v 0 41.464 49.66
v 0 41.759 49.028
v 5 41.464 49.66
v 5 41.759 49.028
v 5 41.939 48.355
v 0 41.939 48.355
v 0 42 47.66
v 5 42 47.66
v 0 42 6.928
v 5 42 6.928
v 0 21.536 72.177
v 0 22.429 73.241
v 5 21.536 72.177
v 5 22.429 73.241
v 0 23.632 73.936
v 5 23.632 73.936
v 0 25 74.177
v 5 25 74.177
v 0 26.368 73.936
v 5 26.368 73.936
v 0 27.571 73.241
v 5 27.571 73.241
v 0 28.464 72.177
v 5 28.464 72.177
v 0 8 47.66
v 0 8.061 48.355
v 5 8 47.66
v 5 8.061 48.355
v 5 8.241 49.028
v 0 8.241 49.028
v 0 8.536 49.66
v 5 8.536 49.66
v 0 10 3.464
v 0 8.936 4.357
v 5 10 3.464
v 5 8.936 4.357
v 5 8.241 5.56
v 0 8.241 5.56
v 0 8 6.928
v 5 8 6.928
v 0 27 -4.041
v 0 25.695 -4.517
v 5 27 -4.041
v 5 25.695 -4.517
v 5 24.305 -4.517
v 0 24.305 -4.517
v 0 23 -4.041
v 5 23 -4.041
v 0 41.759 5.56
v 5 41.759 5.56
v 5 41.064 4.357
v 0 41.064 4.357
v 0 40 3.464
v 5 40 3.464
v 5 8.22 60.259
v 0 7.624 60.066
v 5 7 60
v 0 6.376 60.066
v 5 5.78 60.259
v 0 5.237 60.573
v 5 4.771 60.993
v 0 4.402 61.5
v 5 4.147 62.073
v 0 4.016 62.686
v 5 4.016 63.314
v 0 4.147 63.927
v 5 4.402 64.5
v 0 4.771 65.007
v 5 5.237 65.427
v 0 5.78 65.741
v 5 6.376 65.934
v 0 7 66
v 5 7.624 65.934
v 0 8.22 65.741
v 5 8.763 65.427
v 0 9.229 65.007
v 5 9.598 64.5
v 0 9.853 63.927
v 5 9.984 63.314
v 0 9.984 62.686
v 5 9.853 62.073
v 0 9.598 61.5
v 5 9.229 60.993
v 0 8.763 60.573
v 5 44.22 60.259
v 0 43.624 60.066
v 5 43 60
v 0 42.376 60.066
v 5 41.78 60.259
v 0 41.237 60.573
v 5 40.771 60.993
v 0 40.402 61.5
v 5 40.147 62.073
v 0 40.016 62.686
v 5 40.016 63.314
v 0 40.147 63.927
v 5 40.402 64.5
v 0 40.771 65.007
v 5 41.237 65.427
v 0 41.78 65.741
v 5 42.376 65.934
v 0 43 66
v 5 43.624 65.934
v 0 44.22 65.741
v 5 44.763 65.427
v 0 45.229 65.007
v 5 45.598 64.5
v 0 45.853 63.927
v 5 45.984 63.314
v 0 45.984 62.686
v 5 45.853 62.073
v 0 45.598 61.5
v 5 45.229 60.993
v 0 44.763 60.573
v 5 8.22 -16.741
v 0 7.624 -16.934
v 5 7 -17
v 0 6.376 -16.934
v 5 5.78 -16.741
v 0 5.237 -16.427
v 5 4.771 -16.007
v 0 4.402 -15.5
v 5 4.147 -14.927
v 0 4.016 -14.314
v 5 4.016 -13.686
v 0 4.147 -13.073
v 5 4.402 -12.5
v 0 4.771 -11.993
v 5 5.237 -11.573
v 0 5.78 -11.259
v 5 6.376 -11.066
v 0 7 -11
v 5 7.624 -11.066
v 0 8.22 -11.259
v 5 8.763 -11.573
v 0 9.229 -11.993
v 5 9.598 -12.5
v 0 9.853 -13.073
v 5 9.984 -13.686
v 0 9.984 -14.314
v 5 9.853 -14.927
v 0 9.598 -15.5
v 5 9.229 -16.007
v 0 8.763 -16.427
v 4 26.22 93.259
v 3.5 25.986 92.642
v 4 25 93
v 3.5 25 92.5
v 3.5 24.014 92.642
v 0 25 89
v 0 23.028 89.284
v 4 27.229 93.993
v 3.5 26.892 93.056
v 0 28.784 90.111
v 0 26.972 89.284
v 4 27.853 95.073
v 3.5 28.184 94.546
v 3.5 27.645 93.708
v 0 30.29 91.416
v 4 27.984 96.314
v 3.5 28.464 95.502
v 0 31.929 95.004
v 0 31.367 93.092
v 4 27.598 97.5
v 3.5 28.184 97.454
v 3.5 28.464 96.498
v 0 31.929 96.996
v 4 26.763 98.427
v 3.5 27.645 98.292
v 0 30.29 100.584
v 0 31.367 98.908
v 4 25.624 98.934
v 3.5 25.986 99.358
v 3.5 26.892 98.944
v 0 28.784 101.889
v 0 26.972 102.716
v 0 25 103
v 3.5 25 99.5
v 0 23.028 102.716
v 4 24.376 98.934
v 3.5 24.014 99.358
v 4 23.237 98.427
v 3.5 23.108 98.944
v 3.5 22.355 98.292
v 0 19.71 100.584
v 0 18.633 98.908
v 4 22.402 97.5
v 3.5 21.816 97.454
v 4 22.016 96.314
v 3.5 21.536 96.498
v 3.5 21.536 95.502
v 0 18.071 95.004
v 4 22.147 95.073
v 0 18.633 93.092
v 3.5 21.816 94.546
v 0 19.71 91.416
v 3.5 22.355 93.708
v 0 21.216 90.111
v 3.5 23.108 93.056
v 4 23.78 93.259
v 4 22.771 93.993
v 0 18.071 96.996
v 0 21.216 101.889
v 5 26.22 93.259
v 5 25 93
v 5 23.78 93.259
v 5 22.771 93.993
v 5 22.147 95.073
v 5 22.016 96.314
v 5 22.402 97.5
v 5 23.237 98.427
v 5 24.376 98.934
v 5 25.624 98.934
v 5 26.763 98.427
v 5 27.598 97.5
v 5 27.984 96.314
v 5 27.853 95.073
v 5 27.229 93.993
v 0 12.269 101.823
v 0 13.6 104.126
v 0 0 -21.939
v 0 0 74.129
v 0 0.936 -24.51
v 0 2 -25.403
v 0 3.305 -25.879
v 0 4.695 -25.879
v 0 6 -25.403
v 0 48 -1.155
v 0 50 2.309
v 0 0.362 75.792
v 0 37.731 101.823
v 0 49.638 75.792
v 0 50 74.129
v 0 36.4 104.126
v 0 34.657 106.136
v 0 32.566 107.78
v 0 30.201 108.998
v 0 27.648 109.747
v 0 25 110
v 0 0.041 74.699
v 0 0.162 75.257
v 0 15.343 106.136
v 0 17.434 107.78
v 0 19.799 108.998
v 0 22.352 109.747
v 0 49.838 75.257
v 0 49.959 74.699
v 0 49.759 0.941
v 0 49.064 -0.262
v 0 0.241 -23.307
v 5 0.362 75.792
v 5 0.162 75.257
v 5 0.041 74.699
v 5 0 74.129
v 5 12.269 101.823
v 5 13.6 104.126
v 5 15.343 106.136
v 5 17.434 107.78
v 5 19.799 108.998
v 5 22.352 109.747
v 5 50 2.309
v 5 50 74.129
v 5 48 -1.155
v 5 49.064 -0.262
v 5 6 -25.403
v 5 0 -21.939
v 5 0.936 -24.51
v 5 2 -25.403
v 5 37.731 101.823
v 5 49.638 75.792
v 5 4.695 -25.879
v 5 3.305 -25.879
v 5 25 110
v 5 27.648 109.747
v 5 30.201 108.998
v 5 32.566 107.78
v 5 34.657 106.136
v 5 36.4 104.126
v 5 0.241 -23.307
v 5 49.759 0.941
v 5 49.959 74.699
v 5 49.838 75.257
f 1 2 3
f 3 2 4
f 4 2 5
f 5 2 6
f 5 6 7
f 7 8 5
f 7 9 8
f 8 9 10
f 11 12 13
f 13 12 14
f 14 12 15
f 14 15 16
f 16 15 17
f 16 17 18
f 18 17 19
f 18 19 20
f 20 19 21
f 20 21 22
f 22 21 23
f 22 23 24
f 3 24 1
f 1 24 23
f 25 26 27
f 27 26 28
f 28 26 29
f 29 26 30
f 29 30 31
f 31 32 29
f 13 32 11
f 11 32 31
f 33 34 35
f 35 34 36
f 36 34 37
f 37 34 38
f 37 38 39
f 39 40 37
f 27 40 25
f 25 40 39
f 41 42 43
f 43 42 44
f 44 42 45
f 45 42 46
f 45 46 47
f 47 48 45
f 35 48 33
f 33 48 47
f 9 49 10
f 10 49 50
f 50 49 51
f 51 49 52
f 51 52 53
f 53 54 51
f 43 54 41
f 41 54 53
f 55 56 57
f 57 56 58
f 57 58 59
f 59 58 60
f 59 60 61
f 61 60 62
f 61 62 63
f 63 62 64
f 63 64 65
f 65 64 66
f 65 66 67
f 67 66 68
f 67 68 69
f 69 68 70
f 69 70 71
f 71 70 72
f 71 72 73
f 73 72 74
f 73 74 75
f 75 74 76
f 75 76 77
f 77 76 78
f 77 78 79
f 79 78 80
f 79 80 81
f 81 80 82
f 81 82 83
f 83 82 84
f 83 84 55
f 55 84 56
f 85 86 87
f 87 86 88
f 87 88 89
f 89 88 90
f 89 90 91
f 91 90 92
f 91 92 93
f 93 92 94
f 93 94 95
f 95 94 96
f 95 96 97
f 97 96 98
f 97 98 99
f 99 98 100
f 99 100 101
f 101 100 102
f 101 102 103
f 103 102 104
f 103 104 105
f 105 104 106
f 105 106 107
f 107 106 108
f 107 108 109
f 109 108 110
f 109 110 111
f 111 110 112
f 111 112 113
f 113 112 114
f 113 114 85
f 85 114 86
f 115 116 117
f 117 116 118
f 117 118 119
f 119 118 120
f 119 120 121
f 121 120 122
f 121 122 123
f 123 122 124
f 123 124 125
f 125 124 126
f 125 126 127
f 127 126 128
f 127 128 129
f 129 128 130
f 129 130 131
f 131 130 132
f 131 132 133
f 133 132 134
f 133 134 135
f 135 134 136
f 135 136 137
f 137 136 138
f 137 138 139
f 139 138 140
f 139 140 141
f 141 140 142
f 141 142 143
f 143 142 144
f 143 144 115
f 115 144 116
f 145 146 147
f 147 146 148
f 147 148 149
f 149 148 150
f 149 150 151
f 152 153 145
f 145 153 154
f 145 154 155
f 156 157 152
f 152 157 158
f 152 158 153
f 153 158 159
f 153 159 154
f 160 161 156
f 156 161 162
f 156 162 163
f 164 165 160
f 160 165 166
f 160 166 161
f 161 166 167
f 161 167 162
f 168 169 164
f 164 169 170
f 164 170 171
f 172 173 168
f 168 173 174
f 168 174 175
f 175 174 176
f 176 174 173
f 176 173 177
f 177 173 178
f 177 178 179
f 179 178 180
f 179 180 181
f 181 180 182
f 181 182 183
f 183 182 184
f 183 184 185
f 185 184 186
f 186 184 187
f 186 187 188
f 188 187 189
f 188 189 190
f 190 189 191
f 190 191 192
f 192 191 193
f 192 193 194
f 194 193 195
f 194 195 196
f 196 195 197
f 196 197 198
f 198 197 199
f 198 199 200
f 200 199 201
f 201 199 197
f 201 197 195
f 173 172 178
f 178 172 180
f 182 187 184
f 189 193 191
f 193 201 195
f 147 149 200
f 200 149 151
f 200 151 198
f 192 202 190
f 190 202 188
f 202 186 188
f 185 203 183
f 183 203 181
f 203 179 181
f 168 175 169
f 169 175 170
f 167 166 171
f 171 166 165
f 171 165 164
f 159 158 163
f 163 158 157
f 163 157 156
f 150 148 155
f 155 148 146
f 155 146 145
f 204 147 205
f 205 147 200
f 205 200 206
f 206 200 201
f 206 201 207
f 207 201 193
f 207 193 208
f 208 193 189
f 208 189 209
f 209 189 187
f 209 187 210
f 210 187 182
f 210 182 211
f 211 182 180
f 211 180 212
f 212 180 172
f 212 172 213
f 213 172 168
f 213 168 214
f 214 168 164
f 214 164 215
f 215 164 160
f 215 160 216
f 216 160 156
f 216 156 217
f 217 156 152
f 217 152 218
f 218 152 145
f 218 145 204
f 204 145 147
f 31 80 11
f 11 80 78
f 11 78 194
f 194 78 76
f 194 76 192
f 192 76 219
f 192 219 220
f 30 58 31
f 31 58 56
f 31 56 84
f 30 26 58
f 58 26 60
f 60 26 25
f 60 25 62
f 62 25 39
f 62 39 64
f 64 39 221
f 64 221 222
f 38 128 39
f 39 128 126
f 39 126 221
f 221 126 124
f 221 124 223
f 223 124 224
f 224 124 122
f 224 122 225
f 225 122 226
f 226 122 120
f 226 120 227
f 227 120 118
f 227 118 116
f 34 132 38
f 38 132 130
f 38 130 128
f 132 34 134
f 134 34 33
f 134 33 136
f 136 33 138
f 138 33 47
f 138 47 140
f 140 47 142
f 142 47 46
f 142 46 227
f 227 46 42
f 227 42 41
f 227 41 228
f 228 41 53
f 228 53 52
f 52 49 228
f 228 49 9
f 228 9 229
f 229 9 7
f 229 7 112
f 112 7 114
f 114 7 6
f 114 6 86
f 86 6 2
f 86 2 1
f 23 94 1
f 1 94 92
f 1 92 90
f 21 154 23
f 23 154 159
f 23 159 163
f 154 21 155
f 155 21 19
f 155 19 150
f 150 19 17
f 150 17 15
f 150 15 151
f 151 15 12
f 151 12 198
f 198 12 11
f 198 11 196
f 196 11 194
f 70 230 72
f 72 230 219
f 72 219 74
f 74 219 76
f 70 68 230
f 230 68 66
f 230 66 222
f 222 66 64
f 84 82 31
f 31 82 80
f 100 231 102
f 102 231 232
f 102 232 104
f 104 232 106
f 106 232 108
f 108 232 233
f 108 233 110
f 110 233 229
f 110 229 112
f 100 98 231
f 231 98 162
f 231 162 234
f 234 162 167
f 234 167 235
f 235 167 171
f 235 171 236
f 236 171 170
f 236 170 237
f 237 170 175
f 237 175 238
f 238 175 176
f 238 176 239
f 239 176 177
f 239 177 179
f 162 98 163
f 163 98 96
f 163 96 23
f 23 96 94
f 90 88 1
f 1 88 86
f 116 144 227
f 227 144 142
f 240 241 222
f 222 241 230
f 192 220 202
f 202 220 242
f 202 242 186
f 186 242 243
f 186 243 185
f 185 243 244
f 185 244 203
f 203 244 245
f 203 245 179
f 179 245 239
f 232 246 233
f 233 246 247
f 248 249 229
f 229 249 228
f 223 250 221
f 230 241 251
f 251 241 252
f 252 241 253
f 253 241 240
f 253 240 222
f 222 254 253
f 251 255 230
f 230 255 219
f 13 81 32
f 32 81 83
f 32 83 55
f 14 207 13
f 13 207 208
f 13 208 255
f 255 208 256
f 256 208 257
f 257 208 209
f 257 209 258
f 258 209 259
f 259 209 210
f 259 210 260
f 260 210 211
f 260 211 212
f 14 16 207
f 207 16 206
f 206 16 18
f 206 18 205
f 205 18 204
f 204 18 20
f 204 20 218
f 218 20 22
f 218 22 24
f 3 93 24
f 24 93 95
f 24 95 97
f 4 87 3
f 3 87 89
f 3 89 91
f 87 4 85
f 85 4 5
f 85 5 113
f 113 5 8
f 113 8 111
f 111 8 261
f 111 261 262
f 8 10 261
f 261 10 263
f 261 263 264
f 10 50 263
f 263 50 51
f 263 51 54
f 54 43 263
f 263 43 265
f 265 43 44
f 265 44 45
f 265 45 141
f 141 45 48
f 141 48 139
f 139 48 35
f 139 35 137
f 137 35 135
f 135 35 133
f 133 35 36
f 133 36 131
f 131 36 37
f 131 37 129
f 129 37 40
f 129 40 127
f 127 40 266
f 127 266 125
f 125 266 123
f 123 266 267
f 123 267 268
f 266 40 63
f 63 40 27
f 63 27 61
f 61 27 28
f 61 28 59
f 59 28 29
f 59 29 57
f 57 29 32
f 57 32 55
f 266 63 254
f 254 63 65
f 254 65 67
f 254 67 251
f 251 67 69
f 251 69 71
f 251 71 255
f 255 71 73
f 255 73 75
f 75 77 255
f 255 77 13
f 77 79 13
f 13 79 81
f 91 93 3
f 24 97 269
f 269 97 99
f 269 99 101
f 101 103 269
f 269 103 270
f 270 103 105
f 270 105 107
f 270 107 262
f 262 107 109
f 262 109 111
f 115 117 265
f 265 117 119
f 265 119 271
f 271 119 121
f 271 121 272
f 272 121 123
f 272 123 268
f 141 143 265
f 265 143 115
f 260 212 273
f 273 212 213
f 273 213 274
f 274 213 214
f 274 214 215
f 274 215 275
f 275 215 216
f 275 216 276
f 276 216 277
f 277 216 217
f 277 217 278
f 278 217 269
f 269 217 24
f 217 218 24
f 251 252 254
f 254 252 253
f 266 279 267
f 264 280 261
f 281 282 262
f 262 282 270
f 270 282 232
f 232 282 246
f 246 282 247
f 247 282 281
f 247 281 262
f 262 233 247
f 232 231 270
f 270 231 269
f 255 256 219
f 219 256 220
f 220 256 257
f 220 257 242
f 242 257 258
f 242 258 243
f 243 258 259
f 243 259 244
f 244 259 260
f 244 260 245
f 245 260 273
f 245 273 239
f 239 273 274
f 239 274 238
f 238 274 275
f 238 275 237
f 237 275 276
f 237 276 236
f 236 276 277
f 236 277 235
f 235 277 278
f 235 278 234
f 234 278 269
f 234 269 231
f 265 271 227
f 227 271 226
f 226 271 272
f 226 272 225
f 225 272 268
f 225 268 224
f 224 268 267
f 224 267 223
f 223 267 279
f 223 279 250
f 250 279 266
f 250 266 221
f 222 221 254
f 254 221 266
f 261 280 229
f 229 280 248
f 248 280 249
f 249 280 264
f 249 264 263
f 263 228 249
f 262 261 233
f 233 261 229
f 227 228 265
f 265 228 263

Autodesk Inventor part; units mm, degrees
ref_plane "YZ Plane" through (0, 0, 0) normal (1, 0, 0) x (0, 1, 0)
ref_plane "XZ Plane" through (0, 0, 0) normal (0, 1, 0) x (-1, 0, 0)
ref_plane "XY Plane" through (0, 0, 0) normal (0, 0, 1) x (1, 0, 0)
sketch "Sketch1" plane through (0, 0, 0) normal (1, 0, 0) x (0, 1, 0)
  line L0 (0, 0) -> (50, 0)
  line L1 (50, 0) -> (50, 110)
  line L2 (50, 110) -> (0, 110)
  line L3 (0, 110) -> (0, 0)
  line L4 (50, 0) -> (0, -28.8675)
  line L5 (0, -28.8675) -> (0, 0)
  dimension "d0" = 110
  dimension "d1" = 50
  dimension "d68" = 60
extrude "Extrusion1" add sketch "Sketch1" along normal blind 5
fillet "Fillet1" radius 4 2 edges at (2.5, 50, 0) (2.5, 0, -28.8675)
sketch "Sketch2" plane through (5, 0, 0) normal (1, 0, 0) x (0, 0, -1)
  line L0 (-2.3094, 50) -> (-110, 50) projected
  line L1 (-110, 50) -> (-110, 0) projected
  line L2 (-110, 33.9915) -> (-75, 50)
  line L3 (-110, 16.0085) -> (-75, 0)
  line L4 (-110, 50) -> (-56.045, 50)
  line L5 (-56.045, 50) -> (-56.045, 0)
  line L6 (-56.045, 0) -> (-110, 0)
  line L7 (-110, 0) -> (-110, 50)
  line L8 (-110, 33.9915) -> (-110, 16.0085)
  line L9 (-110, 50) -> (-110, 0) projected
  line L10 (-110, 0) -> (-75, 0)
  circle A0 centre (-96, 25) radius 14
  circle A1 centre (-96, 25) radius 8.05
  line L11 (-96, 25) -> (-90.3078, 19.3078)
  line L12 (-96, 25) -> (-87.95, 25) construction
  circle A2 centre (-90.3078, 19.3078) radius 1.5
  circle A3 centre (-90.3078, 30.6922) radius 1.5
  circle A4 centre (-101.6922, 30.6922) radius 1.5
  circle A5 centre (-101.6922, 19.3078) radius 1.5
  circle A6 centre (-96, 25) radius 3
  point P0 (0, 0)
  point P1 (-110, 0)
  point P2 (-75, 0)
  point P3 (-110, 25)
  point P4 (-101.8232, 37.7315)
  point P5 (-101.8232, 12.2685)
  dimension "d84" = 16.1
  dimension "d13" = 35
  dimension "d82" = 28
  dimension "d83" = 25
  dimension "d86" = 45
  dimension "d87" = 3
  dimension "d90" = 360
  dimension "d97" = 6
extrude "Extrusion2" cut sketch "Sketch2" against normal blind 5 contours L2 L1 L0 | A0 L1 L2 | L6 L1 L3 | A0 L3 L1 | A6
fillet "Fillet3" radius 4 1 edges at (2.5, 50, 75)
chamfer "Chamfer2" distance 4 angle 45 1 edges at (0, 25, 99)
sketch "Sketch7" plane through (0, 0, 0) normal (-1, 0, 0) x (0, 0, 1)
  circle A0 centre (63, 43) radius 3
  circle A1 centre (63, 7) radius 3
  circle A2 centre (-14, 7) radius 3
  line L0 (74.1286, 0) -> (-21.9393, 0) projected
  line L1 (2.3094, 50) -> (74.1286, 50) projected
  point P0 (0, 0)
  dimension "d101" = 14
  dimension "d102" = 63
  dimension "d103" = 7
  dimension "d104" = 7
  dimension "d105" = 6
extrude "Extrusion7" cut sketch "Sketch7" against normal blind 7
sketch "Sketch8" plane through (0, 0, 0) normal (-1, 0, 0) x (0, 0, 1)
  line L0 (4.6188, 42) -> (48.7321, 42)
  line L1 (48.7321, 42) -> (48.7321, 8)
  line L2 (48.7321, 8) -> (4.6188, 8)
  line L3 (4.6188, 8) -> (4.6188, 42)
  line L4 (4.6188, 42) -> (-5.1962, 25)
  line L5 (-5.1962, 25) -> (4.6188, 8)
  line L6 (48.7321, 8) -> (78.1769, 25)
  line L7 (78.1769, 25) -> (48.7321, 42)
  line L8 (-25.4034, 6) -> (-1.1547, 48) projected
  line L9 (2.3094, 50) -> (74.1286, 50) projected
  line L10 (74.1286, 0) -> (-21.9393, 0) projected
  circle A0 centre (63, 43) radius 3 projected
  point P0 (0, 0)
  dimension "d108" = 8
  dimension "d109" = 8
  dimension "d110" = 8
  dimension "d111" = 8
extrude "Extrusion8" cut sketch "Sketch8" against normal blind 7 contours L0 L1 L2 L3 | L3 L5 L4 | L7 L6 L1
fillet "Fillet5" radius 4 6 edges at (2.5, 42, 4.6188) (2.5, 25, -5.1962) (2.5, 8, 4.6188) (2.5, 8, 48.7321) (2.5, 25, 78.1769) (2.5, 42, 48.7321)
properties part number "frame_side"
